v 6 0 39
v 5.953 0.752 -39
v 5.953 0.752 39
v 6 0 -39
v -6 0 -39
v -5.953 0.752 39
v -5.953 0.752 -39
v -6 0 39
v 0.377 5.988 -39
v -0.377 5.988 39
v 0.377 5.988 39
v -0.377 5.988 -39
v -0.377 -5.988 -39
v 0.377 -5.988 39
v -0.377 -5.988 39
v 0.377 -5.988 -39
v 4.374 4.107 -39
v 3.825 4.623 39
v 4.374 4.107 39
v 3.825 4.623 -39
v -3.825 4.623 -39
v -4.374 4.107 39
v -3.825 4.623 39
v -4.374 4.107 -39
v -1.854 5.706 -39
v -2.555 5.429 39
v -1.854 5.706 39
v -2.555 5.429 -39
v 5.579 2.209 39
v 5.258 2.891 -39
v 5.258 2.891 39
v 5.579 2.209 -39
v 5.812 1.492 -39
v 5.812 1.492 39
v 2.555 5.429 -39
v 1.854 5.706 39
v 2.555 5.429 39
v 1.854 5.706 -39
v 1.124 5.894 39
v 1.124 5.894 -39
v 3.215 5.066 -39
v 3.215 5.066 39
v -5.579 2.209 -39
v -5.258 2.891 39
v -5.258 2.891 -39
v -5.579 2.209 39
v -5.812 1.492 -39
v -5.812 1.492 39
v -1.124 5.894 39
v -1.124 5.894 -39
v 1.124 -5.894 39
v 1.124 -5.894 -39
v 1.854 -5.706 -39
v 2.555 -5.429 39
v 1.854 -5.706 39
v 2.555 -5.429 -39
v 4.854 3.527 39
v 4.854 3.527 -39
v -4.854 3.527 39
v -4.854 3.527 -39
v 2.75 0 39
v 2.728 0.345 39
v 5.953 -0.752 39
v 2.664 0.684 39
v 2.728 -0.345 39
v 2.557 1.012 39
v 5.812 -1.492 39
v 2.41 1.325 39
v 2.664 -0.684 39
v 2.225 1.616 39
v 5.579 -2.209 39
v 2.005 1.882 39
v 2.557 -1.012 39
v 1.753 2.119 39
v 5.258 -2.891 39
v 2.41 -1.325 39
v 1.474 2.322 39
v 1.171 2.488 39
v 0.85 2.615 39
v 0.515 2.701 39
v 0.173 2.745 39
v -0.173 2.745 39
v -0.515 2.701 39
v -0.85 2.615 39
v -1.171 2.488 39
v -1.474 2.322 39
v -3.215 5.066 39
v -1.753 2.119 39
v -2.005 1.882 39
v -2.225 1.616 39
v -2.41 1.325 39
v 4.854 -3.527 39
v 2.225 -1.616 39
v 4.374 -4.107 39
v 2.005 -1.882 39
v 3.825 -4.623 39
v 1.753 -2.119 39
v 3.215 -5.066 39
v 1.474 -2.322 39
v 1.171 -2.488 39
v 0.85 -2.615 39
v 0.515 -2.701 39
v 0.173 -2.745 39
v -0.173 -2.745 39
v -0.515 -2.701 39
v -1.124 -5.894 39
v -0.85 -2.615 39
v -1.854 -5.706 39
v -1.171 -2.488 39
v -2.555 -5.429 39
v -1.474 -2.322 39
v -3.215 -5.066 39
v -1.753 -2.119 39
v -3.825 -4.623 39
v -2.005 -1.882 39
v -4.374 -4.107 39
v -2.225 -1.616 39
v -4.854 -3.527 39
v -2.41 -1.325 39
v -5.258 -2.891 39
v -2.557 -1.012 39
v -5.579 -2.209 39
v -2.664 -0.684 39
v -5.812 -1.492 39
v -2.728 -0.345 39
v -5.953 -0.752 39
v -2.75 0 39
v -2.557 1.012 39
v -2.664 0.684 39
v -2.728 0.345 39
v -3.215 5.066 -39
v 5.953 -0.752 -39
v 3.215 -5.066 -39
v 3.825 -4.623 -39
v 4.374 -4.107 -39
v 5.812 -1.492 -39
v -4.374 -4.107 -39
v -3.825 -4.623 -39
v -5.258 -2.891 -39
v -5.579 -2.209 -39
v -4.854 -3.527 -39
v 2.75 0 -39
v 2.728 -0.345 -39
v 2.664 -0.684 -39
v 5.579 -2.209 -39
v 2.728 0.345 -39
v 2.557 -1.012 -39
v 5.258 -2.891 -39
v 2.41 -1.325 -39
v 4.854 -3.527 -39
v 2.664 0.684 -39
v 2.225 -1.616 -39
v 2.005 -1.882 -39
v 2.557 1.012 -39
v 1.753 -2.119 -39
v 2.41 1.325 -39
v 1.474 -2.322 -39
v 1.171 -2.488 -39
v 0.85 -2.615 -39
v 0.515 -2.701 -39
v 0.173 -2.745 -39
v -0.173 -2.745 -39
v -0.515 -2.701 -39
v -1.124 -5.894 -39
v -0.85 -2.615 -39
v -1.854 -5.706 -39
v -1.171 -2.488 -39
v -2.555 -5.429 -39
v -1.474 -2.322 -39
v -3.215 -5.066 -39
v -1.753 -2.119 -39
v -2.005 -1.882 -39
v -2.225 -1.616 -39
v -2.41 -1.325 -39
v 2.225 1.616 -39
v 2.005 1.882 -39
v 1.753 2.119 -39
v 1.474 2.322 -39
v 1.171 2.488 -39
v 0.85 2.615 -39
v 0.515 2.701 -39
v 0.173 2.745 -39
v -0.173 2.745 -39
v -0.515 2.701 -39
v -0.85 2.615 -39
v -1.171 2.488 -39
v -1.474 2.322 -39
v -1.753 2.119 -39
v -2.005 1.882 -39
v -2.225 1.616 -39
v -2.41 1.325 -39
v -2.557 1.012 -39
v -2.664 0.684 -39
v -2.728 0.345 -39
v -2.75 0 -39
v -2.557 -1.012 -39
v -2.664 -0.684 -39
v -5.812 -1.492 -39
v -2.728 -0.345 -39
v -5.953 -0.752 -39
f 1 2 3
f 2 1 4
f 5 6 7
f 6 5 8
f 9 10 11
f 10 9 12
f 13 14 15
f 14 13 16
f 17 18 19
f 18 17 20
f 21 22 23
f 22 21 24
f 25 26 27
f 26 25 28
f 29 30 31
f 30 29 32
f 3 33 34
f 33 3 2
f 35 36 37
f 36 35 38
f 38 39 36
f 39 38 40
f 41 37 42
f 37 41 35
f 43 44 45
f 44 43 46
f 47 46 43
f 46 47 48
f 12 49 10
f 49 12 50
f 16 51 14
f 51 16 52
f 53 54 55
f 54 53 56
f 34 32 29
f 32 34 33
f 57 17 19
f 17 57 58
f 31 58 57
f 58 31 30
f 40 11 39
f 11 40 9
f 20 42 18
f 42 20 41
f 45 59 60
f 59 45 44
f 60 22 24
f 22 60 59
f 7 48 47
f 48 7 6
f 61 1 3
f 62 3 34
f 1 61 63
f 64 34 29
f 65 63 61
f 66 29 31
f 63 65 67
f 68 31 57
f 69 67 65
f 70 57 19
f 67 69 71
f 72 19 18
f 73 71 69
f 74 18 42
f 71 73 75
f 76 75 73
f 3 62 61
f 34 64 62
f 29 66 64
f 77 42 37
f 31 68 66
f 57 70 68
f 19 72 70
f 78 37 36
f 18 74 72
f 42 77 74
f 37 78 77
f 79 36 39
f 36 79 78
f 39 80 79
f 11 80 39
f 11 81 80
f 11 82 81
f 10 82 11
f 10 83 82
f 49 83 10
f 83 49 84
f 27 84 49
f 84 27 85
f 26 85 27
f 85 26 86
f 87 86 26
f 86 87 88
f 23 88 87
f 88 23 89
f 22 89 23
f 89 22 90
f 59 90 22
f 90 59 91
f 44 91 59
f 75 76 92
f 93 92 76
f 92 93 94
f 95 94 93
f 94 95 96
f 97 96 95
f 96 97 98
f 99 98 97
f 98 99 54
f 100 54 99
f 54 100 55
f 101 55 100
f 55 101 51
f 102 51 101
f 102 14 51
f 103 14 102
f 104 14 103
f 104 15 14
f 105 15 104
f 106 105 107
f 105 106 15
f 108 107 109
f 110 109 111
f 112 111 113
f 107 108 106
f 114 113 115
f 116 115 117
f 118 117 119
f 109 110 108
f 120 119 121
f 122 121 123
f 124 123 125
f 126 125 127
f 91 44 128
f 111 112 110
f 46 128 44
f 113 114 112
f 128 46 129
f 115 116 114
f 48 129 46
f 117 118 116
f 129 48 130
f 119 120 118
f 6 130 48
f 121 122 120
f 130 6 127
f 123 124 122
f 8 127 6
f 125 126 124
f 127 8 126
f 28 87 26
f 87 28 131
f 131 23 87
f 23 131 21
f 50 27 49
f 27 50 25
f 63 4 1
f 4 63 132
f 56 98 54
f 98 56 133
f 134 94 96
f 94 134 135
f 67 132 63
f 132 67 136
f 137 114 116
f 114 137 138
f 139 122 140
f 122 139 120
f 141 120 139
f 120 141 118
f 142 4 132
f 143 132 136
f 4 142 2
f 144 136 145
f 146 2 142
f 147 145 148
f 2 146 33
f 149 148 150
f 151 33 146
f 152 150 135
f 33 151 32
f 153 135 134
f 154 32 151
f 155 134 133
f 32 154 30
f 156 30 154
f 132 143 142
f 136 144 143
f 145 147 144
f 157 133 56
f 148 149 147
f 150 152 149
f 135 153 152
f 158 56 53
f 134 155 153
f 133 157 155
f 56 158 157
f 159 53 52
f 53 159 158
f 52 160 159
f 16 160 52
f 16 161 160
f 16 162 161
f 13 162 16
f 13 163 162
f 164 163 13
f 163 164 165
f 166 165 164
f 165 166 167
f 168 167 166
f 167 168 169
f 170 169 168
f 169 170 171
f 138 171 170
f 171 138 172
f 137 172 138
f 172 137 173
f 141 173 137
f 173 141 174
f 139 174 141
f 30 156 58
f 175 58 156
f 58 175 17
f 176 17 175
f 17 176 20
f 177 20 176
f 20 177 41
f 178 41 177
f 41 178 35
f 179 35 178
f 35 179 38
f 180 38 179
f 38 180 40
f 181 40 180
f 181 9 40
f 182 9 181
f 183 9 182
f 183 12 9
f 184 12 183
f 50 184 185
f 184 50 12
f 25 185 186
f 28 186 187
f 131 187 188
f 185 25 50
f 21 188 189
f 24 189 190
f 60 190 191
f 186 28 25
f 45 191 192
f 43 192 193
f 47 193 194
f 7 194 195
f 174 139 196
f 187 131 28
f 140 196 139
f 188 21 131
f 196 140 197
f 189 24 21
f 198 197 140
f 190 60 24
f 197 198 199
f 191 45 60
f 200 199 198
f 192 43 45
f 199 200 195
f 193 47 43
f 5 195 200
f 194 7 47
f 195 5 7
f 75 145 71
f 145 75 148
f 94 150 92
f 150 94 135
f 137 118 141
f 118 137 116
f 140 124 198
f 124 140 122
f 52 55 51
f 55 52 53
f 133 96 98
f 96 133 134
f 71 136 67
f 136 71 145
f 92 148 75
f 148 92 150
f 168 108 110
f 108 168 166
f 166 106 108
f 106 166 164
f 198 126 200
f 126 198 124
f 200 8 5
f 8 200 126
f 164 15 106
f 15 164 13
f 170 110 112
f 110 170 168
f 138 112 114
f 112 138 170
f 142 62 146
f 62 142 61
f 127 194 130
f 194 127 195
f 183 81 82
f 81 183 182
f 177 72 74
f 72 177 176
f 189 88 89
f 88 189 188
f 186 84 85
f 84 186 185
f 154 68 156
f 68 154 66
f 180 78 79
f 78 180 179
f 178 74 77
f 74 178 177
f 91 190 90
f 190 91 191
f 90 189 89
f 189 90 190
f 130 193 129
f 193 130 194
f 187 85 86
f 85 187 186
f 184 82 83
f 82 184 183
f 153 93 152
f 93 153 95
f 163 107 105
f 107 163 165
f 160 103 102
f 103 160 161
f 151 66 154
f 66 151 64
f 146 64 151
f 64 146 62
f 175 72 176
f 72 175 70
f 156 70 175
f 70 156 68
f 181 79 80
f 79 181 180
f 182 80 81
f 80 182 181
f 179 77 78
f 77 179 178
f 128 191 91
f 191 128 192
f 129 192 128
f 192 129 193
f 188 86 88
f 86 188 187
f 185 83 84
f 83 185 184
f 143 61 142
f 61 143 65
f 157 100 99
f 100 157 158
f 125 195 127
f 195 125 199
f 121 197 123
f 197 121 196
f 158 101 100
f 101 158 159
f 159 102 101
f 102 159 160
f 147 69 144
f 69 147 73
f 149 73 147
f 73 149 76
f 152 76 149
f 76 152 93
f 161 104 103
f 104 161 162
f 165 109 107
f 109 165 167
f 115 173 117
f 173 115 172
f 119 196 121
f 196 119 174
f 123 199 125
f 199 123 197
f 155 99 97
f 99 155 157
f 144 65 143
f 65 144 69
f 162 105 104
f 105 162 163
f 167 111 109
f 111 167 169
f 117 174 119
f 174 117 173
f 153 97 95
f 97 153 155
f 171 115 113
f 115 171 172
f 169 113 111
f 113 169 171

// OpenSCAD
$fn = 50;


difference() {
	union() {
		translate(v = [0, 0, -39.0000000000]) {
			cylinder(h = 78, r = 6.0000000000);
		}
	}
	union() {
		translate(v = [0, 0, -100.0000000000]) {
			cylinder(h = 200, r = 2.7500000000);
		}
	}
}
